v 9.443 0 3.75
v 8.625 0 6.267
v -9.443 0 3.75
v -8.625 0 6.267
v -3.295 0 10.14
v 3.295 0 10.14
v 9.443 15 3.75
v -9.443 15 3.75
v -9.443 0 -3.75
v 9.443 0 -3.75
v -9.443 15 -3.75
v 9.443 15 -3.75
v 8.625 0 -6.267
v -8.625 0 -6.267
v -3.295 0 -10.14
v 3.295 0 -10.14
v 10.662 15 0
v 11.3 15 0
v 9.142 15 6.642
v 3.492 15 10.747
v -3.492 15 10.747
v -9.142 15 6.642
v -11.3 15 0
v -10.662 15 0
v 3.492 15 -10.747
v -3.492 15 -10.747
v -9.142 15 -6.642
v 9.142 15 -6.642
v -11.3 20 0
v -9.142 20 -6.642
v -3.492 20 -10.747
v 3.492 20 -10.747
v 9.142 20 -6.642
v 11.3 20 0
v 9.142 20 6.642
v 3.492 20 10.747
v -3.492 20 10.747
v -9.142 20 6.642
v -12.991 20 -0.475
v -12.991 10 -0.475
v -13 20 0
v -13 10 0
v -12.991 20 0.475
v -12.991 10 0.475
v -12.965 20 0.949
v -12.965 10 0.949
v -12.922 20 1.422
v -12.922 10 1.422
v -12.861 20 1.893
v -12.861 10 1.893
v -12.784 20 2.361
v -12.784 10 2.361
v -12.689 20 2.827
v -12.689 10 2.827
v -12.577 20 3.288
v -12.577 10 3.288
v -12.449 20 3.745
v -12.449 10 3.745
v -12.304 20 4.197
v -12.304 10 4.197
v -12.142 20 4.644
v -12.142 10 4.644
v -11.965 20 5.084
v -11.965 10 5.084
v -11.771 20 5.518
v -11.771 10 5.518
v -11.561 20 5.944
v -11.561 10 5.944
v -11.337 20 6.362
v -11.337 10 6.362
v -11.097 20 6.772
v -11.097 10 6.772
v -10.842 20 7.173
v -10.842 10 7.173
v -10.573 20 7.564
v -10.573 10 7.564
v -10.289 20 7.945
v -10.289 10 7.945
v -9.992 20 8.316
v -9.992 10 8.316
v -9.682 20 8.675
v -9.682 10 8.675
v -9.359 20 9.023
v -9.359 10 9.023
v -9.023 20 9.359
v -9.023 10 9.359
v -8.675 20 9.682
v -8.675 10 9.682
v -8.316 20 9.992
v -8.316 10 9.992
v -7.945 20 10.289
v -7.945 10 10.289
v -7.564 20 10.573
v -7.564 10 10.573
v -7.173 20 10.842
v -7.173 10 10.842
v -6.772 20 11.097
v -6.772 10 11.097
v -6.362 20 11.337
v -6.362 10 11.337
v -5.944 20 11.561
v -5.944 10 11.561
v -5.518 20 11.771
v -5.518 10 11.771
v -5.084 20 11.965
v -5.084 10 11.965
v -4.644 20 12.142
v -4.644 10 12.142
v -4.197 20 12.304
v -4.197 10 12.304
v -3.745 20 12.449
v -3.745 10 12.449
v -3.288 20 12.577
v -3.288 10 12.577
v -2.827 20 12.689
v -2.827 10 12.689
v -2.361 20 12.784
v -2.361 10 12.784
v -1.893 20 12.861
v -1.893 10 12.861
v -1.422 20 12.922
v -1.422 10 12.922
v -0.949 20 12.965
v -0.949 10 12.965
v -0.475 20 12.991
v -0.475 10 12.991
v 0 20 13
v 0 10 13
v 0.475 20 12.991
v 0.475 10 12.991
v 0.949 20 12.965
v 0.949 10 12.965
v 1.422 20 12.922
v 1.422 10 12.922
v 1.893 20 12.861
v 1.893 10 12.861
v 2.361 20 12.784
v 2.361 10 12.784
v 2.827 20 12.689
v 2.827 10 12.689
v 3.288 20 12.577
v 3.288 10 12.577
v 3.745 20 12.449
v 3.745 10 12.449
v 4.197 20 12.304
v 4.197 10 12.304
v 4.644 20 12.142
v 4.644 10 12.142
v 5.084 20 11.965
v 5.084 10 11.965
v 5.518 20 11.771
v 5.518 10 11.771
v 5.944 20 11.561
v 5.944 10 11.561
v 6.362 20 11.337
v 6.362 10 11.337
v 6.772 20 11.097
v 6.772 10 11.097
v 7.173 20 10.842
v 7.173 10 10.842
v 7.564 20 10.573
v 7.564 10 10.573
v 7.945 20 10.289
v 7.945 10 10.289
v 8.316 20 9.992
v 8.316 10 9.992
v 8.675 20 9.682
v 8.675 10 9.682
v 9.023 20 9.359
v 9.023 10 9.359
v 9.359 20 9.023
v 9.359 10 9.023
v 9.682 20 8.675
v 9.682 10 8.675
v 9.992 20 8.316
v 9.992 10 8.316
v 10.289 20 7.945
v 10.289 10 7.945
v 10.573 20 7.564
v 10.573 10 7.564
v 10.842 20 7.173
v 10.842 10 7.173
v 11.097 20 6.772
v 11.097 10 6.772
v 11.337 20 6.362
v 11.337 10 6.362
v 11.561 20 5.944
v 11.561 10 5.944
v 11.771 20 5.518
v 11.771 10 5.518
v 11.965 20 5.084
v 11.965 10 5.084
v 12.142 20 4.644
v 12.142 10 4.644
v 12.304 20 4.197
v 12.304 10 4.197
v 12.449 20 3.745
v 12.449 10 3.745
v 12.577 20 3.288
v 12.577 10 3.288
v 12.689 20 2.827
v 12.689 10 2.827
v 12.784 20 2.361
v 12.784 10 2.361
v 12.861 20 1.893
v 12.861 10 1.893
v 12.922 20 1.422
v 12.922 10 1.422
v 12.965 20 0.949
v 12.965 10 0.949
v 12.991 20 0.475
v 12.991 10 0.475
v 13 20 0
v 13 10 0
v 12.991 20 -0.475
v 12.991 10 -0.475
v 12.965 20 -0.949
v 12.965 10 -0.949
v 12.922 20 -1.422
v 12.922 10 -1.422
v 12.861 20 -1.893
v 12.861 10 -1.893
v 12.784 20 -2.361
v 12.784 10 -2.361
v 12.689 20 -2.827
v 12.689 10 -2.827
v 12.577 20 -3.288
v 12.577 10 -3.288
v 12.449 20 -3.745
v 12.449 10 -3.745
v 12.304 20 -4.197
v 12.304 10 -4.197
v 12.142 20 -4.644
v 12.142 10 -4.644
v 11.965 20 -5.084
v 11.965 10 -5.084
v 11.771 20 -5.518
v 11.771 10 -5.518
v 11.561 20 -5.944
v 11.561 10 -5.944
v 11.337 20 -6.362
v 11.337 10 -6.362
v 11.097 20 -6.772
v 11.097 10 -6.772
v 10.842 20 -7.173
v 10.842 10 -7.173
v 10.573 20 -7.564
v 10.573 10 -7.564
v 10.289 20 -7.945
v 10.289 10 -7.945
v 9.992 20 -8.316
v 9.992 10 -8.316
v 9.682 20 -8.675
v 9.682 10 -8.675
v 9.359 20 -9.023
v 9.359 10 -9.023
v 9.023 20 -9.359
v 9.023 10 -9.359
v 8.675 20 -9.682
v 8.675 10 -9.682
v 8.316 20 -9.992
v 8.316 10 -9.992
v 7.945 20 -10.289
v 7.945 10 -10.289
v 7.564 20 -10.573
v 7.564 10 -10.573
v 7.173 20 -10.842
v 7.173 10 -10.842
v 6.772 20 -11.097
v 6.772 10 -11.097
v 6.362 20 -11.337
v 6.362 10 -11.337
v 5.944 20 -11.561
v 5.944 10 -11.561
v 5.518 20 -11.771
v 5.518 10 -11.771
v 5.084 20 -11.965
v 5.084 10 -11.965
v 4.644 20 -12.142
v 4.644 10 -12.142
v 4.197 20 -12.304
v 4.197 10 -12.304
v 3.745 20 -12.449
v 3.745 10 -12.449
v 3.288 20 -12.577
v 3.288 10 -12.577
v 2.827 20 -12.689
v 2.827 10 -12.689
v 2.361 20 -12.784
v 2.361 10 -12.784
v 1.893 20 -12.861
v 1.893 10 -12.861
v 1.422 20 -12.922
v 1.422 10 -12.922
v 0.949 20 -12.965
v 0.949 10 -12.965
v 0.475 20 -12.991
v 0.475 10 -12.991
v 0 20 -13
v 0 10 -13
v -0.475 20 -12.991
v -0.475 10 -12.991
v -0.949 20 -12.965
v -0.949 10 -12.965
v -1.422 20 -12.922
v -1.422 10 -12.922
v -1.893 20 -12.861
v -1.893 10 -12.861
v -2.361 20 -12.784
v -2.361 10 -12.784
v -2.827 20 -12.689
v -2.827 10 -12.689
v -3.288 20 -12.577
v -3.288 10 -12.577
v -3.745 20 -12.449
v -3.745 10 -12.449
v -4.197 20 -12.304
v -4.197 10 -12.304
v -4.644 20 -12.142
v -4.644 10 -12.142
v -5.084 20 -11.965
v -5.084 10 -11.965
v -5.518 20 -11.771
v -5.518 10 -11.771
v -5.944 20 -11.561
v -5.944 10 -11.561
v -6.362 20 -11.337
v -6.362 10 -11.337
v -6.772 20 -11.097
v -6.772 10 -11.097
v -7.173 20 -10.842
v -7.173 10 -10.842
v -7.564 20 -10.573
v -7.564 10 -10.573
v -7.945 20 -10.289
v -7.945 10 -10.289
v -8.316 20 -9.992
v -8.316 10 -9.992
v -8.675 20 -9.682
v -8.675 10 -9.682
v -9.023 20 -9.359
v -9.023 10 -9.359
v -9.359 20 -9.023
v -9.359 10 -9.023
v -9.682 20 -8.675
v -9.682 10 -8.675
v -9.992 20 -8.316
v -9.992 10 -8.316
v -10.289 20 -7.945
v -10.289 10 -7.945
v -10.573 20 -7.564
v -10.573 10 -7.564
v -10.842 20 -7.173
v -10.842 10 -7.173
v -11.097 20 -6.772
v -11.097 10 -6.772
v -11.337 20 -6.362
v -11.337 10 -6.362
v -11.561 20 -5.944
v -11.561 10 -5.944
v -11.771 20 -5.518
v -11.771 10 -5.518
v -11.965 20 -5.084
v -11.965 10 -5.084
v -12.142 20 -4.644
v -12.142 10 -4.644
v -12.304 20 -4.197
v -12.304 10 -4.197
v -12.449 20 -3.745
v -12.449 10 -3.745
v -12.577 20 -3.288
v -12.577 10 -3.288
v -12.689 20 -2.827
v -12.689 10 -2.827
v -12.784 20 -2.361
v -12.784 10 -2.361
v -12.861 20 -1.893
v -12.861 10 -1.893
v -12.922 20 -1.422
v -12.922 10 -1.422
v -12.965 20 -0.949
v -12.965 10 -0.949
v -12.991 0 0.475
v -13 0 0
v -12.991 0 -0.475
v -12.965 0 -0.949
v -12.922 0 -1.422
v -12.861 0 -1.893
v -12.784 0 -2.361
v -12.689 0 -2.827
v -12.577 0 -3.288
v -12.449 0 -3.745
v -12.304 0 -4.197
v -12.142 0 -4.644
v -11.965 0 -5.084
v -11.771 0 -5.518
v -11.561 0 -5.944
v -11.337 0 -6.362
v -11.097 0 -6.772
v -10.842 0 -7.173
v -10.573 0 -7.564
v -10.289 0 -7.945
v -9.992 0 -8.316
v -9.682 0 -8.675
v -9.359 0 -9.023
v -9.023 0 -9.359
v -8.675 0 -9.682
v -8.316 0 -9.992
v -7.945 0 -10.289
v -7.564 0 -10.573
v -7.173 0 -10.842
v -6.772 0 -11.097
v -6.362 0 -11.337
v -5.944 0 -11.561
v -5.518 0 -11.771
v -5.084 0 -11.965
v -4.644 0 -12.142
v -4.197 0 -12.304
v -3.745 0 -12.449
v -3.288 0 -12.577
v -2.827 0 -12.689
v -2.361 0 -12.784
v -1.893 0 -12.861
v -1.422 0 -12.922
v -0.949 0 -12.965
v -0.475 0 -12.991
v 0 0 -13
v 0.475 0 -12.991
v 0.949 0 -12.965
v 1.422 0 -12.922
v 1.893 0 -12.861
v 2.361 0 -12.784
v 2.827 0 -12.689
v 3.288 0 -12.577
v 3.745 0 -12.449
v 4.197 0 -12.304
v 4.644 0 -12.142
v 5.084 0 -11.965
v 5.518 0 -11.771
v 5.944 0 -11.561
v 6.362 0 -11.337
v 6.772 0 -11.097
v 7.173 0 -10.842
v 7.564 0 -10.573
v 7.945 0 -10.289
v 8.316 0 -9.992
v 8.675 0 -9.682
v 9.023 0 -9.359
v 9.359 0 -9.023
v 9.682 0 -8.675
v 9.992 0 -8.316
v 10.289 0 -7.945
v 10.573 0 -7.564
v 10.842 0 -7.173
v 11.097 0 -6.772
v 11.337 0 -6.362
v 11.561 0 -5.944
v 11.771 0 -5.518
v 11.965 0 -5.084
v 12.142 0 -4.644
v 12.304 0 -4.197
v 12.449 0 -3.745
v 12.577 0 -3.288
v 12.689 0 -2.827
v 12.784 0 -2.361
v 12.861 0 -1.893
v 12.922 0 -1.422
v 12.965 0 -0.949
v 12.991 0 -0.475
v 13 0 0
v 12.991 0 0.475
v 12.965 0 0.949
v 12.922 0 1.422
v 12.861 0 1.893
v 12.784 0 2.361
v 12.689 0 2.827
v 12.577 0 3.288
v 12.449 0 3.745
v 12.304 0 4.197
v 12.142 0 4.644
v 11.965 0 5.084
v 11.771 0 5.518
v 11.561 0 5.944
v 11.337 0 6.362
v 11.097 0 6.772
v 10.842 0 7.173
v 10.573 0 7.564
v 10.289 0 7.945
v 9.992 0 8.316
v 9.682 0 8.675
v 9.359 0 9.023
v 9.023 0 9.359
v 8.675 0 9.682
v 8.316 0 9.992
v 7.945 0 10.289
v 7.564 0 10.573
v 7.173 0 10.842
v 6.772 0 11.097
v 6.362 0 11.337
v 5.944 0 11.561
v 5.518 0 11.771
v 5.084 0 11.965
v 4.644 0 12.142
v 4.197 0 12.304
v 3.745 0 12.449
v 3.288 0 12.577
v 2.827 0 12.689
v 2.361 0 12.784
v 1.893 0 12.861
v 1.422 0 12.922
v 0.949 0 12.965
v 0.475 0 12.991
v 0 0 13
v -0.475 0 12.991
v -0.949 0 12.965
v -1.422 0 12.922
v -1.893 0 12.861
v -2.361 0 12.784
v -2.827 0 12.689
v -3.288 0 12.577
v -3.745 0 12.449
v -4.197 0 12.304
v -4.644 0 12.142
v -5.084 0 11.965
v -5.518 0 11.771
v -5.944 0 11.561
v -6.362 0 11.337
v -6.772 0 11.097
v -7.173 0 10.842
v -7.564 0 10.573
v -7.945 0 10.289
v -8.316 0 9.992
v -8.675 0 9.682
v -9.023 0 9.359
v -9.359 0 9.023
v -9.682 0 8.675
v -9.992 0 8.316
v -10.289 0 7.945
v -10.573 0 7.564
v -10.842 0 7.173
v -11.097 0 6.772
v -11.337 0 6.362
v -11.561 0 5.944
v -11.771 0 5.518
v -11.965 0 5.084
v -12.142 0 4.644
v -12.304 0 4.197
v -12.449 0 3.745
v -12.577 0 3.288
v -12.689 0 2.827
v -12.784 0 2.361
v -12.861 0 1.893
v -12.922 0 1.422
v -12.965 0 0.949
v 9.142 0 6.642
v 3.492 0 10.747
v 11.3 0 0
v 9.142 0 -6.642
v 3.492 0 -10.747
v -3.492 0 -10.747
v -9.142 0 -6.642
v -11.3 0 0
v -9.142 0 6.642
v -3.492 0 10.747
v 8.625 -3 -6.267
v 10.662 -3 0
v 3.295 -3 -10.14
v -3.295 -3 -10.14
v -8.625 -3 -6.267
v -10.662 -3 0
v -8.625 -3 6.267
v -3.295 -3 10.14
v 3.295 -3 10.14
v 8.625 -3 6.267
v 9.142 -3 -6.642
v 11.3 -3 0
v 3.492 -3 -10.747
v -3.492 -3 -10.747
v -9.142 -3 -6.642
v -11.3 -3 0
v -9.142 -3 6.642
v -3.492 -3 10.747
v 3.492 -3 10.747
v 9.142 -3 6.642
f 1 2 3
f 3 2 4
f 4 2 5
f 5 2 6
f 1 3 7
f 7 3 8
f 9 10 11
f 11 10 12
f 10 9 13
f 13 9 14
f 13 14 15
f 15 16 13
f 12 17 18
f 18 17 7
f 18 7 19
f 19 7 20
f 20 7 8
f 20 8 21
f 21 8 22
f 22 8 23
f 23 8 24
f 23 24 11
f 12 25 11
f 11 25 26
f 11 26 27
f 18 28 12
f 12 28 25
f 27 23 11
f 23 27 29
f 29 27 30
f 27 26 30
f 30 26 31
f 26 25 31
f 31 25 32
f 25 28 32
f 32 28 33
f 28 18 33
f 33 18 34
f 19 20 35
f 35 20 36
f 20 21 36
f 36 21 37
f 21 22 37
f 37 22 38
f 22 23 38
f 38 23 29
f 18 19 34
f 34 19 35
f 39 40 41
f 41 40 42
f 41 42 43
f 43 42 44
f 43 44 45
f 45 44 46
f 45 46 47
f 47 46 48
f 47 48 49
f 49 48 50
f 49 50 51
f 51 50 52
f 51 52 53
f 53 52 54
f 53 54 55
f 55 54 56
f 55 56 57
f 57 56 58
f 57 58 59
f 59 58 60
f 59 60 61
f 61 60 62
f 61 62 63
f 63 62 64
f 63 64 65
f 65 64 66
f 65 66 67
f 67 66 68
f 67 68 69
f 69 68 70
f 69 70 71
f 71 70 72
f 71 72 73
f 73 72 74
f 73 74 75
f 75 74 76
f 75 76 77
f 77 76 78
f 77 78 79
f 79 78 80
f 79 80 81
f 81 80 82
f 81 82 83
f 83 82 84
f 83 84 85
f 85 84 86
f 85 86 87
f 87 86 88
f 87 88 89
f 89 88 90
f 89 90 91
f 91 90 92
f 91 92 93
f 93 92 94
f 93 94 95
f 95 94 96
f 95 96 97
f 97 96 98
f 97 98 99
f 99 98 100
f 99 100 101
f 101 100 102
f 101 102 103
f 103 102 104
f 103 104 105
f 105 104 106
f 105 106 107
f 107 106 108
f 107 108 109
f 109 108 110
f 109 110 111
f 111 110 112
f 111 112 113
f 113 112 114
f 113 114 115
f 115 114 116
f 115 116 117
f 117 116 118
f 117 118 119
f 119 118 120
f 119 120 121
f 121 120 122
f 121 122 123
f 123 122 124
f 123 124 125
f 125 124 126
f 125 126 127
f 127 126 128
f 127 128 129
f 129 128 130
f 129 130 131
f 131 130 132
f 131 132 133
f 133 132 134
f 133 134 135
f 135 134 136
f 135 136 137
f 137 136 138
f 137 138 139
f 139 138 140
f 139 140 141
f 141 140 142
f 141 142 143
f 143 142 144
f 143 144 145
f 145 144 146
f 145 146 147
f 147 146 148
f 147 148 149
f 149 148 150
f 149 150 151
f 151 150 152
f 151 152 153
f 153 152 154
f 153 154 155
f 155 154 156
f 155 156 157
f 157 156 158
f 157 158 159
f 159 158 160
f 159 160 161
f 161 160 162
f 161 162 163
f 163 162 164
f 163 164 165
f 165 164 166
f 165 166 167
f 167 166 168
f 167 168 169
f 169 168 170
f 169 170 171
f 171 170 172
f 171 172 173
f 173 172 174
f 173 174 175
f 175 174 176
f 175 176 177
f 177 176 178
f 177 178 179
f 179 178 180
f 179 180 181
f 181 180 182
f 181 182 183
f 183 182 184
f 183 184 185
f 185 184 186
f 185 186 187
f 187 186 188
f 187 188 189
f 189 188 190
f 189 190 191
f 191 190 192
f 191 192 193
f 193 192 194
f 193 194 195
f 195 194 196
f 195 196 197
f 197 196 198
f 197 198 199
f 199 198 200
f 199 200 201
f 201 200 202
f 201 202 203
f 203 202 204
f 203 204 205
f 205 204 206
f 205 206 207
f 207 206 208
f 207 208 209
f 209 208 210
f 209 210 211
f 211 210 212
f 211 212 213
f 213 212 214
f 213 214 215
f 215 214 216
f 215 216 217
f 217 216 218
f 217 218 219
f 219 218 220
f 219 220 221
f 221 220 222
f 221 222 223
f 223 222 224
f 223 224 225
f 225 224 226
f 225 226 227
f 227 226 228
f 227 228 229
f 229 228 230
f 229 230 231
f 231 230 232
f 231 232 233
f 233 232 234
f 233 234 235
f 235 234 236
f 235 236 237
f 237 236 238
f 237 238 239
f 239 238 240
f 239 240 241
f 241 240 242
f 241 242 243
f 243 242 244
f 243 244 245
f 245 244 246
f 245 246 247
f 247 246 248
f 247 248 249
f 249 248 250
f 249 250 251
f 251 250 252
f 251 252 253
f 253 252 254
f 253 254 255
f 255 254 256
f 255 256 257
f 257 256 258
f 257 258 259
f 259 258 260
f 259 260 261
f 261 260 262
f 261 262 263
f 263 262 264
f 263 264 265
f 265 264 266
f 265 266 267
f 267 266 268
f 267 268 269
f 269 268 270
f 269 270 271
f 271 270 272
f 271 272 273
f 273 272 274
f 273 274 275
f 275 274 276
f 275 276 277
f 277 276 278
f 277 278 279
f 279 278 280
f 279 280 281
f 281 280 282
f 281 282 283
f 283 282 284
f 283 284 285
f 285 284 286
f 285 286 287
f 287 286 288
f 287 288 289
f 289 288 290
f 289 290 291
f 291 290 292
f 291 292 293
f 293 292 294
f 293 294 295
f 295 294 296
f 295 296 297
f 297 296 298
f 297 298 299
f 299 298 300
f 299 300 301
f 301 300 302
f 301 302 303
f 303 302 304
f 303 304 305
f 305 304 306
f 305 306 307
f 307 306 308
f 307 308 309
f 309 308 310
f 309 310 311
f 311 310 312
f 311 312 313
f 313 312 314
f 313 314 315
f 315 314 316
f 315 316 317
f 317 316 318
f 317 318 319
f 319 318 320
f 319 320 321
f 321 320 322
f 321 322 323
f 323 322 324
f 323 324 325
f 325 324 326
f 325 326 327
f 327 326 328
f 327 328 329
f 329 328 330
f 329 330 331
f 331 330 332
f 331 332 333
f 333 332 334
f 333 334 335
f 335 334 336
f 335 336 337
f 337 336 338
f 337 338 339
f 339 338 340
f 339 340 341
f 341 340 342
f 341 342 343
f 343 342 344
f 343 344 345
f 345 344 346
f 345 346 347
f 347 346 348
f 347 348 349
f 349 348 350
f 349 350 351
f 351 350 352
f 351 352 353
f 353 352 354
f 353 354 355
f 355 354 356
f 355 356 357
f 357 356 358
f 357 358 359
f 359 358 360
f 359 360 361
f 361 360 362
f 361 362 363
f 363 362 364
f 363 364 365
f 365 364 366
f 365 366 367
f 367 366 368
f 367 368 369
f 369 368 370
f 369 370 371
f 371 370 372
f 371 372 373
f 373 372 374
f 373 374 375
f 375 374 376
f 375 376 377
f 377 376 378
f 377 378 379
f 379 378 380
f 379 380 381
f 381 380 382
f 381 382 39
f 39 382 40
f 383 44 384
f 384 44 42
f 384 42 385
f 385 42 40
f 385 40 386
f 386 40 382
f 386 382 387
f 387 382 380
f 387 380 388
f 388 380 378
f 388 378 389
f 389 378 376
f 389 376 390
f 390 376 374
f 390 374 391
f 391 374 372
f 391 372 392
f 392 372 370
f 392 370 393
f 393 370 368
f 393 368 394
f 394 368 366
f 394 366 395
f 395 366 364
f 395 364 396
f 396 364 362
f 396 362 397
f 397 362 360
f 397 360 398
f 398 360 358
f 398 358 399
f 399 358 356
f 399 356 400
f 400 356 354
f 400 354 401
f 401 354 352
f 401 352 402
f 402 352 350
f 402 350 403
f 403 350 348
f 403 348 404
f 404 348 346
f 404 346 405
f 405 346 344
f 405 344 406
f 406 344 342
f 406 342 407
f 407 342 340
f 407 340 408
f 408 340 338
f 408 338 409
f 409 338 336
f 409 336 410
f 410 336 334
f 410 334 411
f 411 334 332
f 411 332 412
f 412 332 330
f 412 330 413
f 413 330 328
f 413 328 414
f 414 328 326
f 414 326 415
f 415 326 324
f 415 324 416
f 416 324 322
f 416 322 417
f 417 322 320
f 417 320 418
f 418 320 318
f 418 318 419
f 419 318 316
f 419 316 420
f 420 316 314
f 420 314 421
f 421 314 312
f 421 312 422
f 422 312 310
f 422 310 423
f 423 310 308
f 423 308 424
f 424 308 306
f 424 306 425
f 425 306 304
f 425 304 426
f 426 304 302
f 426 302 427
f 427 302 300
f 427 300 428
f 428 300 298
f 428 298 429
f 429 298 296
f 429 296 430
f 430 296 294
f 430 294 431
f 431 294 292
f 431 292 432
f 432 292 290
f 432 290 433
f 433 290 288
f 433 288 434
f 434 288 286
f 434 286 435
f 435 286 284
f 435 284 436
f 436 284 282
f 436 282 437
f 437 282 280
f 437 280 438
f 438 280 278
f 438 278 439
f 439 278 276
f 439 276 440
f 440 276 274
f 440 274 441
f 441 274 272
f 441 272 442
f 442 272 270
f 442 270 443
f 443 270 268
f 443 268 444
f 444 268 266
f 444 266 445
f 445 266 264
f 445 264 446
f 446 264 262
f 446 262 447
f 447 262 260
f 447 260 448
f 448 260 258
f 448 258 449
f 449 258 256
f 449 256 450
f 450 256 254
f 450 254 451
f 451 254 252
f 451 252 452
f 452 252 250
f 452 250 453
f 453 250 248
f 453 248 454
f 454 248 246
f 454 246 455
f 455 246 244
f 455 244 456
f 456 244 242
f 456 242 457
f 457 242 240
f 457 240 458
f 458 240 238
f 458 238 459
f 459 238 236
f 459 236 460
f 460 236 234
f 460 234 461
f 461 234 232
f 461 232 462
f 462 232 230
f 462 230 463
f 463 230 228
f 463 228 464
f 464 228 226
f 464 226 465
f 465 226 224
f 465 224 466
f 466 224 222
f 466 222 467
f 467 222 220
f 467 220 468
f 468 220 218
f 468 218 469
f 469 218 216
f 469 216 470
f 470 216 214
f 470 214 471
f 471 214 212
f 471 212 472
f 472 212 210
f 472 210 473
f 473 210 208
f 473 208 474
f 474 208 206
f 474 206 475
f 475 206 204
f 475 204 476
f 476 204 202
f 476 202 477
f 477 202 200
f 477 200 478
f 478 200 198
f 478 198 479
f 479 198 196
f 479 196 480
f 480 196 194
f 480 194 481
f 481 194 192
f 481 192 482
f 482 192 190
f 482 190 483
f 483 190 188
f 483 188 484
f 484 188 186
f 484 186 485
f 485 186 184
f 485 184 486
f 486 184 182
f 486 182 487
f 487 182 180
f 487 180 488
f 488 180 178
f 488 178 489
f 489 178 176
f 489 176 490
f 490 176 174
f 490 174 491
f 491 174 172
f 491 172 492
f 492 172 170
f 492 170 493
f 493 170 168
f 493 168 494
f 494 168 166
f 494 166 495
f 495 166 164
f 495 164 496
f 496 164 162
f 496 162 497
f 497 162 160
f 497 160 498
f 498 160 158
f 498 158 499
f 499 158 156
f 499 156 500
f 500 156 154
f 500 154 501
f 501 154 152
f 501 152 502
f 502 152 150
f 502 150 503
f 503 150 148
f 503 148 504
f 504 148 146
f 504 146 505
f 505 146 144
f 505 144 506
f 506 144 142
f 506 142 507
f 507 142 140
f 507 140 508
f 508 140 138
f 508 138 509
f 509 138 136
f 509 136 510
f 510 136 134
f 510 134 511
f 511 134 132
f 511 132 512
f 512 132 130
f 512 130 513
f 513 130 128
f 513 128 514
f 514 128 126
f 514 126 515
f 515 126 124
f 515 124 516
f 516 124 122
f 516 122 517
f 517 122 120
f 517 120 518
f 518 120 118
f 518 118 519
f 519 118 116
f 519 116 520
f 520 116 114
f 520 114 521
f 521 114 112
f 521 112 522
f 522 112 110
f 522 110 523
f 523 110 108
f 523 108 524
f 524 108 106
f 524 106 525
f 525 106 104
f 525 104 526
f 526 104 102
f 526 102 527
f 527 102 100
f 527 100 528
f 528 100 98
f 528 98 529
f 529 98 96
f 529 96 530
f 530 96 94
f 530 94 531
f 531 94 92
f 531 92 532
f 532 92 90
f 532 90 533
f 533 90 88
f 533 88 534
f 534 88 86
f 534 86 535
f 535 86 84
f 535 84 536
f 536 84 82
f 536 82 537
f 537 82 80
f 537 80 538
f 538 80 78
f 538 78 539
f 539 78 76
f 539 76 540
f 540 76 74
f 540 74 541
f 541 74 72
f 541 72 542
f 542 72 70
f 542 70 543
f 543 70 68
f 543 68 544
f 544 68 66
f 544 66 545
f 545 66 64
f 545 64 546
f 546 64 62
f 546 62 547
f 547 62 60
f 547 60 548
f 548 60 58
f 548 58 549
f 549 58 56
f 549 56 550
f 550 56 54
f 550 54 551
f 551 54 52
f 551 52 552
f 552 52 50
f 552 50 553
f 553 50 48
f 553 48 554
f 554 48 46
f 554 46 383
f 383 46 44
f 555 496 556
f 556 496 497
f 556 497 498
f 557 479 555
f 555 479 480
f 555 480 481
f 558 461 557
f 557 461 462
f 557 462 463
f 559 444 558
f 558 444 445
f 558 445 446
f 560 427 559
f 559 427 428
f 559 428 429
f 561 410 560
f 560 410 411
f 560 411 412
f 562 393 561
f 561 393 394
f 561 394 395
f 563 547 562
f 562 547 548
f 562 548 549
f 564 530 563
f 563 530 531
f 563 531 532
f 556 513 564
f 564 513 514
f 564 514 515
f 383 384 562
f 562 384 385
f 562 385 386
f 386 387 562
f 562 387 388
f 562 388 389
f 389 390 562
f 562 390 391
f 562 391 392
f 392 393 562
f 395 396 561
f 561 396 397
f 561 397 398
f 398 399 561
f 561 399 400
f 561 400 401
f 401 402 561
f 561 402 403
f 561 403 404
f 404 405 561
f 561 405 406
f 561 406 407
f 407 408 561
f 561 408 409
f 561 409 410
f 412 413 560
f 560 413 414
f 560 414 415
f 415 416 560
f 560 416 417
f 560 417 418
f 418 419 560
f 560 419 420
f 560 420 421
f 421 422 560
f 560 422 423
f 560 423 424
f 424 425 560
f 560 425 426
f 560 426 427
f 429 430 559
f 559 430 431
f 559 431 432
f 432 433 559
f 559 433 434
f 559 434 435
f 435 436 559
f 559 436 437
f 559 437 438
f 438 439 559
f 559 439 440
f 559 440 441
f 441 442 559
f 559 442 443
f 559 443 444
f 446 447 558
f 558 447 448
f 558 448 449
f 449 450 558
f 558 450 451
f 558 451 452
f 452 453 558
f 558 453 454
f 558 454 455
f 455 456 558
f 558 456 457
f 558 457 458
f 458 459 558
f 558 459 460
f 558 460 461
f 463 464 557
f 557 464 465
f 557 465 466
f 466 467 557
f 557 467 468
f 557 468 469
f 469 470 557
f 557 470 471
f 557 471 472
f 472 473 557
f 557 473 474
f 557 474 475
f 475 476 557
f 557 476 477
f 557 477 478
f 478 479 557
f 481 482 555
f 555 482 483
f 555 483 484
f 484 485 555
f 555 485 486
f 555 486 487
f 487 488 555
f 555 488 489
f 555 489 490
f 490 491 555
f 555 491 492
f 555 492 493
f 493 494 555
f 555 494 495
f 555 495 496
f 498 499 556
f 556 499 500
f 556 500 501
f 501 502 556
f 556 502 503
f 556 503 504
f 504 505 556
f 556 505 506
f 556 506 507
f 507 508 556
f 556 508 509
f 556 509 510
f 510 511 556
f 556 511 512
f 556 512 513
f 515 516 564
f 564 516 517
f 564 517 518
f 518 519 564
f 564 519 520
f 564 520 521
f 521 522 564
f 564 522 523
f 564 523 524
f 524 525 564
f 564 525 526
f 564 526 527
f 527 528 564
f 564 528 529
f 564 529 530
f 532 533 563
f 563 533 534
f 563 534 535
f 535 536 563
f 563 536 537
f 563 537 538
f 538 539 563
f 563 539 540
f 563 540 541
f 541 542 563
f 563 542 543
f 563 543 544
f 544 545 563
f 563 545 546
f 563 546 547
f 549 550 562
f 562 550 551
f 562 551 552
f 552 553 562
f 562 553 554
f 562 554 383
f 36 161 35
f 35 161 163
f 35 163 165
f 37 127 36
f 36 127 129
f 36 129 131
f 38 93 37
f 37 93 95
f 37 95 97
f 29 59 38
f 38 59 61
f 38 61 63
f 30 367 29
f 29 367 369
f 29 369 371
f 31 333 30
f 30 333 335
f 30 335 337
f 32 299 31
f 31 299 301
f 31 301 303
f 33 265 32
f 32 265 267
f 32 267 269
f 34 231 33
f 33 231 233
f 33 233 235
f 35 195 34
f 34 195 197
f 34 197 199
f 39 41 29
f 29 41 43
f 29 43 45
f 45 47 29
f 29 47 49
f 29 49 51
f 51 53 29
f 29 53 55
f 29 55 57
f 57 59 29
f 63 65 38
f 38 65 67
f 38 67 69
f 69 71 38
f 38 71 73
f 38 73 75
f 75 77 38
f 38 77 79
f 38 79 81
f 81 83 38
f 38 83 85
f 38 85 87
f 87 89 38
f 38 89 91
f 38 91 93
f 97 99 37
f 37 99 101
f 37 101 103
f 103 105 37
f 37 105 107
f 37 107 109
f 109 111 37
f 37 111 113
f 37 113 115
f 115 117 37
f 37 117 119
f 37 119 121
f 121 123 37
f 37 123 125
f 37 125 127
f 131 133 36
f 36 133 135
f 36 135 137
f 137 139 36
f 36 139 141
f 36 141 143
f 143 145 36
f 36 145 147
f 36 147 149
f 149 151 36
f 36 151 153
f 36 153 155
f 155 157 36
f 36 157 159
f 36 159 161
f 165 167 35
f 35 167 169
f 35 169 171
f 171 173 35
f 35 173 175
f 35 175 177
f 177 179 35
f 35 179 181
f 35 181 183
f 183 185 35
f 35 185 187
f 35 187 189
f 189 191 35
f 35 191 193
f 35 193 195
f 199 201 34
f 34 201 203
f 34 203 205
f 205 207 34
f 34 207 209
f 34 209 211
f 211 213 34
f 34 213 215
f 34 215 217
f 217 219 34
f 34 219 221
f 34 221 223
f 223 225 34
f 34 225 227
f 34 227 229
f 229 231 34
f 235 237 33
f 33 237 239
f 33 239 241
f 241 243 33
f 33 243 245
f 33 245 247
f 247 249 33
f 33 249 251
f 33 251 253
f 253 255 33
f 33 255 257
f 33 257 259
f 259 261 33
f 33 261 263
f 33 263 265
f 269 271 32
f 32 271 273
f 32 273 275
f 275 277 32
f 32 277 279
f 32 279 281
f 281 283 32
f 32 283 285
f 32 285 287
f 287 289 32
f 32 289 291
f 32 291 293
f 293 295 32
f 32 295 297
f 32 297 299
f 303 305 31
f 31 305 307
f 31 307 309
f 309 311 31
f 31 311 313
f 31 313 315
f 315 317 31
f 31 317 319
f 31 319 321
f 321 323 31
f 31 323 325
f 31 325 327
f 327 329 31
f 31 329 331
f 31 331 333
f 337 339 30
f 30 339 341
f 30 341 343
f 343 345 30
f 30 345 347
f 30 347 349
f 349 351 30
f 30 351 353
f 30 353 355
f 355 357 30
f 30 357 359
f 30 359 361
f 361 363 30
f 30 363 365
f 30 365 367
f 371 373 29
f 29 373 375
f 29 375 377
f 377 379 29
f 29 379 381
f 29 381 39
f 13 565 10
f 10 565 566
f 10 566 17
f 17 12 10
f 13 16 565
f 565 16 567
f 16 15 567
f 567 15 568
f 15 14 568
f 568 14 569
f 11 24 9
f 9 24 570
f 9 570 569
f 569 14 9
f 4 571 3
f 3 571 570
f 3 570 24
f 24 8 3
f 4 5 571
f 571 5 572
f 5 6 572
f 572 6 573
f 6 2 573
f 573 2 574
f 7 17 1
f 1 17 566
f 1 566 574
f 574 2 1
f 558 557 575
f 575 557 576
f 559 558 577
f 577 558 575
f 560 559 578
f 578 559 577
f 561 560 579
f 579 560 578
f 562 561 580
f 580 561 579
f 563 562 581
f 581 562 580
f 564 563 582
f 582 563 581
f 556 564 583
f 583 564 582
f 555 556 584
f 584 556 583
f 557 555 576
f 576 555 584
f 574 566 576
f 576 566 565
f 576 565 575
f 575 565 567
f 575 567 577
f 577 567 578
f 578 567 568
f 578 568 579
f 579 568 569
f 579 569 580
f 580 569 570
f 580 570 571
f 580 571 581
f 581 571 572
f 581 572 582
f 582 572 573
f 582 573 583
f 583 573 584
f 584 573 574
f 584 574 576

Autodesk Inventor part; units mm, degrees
ref_plane "YZ Plane" through (0, 0, 0) normal (1, 0, 0) x (0, 1, 0)
ref_plane "XZ Plane" through (0, 0, 0) normal (0, 1, 0) x (-1, 0, 0)
ref_plane "XY Plane" through (0, 0, 0) normal (0, 0, 1) x (1, 0, 0)
sketch "Sketch1" plane through (0, 0, 0) normal (0, 1, 0) x (-1, 0, 0)
  circle A0 centre (0, 0) radius 13
  line L0 (-10.6616, 0) -> (-8.6254, 6.2667)
  line L1 (-8.6254, 6.2667) -> (-3.2946, 10.1398)
  line L2 (-3.2946, 10.1398) -> (3.2946, 10.1398)
  line L3 (3.2946, 10.1398) -> (8.6254, 6.2667)
  line L4 (8.6254, 6.2667) -> (10.6616, 0)
  line L5 (10.6616, 0) -> (8.6254, -6.2667)
  line L6 (8.6254, -6.2667) -> (3.2946, -10.1398)
  line L7 (3.2946, -10.1398) -> (-3.2946, -10.1398)
  line L8 (-3.2946, -10.1398) -> (-8.6254, -6.2667)
  line L9 (-8.6254, -6.2667) -> (-10.6616, 0)
  line L10 (-11.3, 0) -> (-9.1419, 6.642)
  line L11 (-9.1419, 6.642) -> (-3.4919, 10.7469)
  line L12 (-3.4919, 10.7469) -> (3.4919, 10.7469)
  line L13 (3.4919, 10.7469) -> (9.1419, 6.642)
  line L14 (9.1419, 6.642) -> (11.3, 0)
  line L15 (11.3, 0) -> (9.1419, -6.642)
  line L16 (9.1419, -6.642) -> (3.4919, -10.7469)
  line L17 (3.4919, -10.7469) -> (-3.4919, -10.7469)
  line L18 (-3.4919, -10.7469) -> (-9.1419, -6.642)
  line L19 (-9.1419, -6.642) -> (-11.3, 0)
  circle A1 centre (-6, 0) radius 3.75
  circle A2 centre (6, 0) radius 3.75
  line L20 (9.4432, -3.75) -> (-9.4432, -3.75)
  line L21 (-9.4432, 3.75) -> (9.4432, 3.75)
  dimension "d0" = 26
  dimension "d8" = 7.5
  dimension "d9" = 7.5
extrude "Extrusion1" add sketch "Sketch1" against normal blind 3 contours L10 L11 L12 L13 L14 L15 L16 L17 L18 L19
extrude "Extrusion2" add sketch "Sketch1" along normal blind 20 contours A0
extrude "Extrusion3" add sketch "Sketch1" along normal blind 15 contours L0 L1 L2 L3 L4 L21 | L20 L5 L6 L7 L8 L9 | L10 L11 L12 L13 L14 L15 L16 L17 L18 L19
properties part number "Probe P2"
